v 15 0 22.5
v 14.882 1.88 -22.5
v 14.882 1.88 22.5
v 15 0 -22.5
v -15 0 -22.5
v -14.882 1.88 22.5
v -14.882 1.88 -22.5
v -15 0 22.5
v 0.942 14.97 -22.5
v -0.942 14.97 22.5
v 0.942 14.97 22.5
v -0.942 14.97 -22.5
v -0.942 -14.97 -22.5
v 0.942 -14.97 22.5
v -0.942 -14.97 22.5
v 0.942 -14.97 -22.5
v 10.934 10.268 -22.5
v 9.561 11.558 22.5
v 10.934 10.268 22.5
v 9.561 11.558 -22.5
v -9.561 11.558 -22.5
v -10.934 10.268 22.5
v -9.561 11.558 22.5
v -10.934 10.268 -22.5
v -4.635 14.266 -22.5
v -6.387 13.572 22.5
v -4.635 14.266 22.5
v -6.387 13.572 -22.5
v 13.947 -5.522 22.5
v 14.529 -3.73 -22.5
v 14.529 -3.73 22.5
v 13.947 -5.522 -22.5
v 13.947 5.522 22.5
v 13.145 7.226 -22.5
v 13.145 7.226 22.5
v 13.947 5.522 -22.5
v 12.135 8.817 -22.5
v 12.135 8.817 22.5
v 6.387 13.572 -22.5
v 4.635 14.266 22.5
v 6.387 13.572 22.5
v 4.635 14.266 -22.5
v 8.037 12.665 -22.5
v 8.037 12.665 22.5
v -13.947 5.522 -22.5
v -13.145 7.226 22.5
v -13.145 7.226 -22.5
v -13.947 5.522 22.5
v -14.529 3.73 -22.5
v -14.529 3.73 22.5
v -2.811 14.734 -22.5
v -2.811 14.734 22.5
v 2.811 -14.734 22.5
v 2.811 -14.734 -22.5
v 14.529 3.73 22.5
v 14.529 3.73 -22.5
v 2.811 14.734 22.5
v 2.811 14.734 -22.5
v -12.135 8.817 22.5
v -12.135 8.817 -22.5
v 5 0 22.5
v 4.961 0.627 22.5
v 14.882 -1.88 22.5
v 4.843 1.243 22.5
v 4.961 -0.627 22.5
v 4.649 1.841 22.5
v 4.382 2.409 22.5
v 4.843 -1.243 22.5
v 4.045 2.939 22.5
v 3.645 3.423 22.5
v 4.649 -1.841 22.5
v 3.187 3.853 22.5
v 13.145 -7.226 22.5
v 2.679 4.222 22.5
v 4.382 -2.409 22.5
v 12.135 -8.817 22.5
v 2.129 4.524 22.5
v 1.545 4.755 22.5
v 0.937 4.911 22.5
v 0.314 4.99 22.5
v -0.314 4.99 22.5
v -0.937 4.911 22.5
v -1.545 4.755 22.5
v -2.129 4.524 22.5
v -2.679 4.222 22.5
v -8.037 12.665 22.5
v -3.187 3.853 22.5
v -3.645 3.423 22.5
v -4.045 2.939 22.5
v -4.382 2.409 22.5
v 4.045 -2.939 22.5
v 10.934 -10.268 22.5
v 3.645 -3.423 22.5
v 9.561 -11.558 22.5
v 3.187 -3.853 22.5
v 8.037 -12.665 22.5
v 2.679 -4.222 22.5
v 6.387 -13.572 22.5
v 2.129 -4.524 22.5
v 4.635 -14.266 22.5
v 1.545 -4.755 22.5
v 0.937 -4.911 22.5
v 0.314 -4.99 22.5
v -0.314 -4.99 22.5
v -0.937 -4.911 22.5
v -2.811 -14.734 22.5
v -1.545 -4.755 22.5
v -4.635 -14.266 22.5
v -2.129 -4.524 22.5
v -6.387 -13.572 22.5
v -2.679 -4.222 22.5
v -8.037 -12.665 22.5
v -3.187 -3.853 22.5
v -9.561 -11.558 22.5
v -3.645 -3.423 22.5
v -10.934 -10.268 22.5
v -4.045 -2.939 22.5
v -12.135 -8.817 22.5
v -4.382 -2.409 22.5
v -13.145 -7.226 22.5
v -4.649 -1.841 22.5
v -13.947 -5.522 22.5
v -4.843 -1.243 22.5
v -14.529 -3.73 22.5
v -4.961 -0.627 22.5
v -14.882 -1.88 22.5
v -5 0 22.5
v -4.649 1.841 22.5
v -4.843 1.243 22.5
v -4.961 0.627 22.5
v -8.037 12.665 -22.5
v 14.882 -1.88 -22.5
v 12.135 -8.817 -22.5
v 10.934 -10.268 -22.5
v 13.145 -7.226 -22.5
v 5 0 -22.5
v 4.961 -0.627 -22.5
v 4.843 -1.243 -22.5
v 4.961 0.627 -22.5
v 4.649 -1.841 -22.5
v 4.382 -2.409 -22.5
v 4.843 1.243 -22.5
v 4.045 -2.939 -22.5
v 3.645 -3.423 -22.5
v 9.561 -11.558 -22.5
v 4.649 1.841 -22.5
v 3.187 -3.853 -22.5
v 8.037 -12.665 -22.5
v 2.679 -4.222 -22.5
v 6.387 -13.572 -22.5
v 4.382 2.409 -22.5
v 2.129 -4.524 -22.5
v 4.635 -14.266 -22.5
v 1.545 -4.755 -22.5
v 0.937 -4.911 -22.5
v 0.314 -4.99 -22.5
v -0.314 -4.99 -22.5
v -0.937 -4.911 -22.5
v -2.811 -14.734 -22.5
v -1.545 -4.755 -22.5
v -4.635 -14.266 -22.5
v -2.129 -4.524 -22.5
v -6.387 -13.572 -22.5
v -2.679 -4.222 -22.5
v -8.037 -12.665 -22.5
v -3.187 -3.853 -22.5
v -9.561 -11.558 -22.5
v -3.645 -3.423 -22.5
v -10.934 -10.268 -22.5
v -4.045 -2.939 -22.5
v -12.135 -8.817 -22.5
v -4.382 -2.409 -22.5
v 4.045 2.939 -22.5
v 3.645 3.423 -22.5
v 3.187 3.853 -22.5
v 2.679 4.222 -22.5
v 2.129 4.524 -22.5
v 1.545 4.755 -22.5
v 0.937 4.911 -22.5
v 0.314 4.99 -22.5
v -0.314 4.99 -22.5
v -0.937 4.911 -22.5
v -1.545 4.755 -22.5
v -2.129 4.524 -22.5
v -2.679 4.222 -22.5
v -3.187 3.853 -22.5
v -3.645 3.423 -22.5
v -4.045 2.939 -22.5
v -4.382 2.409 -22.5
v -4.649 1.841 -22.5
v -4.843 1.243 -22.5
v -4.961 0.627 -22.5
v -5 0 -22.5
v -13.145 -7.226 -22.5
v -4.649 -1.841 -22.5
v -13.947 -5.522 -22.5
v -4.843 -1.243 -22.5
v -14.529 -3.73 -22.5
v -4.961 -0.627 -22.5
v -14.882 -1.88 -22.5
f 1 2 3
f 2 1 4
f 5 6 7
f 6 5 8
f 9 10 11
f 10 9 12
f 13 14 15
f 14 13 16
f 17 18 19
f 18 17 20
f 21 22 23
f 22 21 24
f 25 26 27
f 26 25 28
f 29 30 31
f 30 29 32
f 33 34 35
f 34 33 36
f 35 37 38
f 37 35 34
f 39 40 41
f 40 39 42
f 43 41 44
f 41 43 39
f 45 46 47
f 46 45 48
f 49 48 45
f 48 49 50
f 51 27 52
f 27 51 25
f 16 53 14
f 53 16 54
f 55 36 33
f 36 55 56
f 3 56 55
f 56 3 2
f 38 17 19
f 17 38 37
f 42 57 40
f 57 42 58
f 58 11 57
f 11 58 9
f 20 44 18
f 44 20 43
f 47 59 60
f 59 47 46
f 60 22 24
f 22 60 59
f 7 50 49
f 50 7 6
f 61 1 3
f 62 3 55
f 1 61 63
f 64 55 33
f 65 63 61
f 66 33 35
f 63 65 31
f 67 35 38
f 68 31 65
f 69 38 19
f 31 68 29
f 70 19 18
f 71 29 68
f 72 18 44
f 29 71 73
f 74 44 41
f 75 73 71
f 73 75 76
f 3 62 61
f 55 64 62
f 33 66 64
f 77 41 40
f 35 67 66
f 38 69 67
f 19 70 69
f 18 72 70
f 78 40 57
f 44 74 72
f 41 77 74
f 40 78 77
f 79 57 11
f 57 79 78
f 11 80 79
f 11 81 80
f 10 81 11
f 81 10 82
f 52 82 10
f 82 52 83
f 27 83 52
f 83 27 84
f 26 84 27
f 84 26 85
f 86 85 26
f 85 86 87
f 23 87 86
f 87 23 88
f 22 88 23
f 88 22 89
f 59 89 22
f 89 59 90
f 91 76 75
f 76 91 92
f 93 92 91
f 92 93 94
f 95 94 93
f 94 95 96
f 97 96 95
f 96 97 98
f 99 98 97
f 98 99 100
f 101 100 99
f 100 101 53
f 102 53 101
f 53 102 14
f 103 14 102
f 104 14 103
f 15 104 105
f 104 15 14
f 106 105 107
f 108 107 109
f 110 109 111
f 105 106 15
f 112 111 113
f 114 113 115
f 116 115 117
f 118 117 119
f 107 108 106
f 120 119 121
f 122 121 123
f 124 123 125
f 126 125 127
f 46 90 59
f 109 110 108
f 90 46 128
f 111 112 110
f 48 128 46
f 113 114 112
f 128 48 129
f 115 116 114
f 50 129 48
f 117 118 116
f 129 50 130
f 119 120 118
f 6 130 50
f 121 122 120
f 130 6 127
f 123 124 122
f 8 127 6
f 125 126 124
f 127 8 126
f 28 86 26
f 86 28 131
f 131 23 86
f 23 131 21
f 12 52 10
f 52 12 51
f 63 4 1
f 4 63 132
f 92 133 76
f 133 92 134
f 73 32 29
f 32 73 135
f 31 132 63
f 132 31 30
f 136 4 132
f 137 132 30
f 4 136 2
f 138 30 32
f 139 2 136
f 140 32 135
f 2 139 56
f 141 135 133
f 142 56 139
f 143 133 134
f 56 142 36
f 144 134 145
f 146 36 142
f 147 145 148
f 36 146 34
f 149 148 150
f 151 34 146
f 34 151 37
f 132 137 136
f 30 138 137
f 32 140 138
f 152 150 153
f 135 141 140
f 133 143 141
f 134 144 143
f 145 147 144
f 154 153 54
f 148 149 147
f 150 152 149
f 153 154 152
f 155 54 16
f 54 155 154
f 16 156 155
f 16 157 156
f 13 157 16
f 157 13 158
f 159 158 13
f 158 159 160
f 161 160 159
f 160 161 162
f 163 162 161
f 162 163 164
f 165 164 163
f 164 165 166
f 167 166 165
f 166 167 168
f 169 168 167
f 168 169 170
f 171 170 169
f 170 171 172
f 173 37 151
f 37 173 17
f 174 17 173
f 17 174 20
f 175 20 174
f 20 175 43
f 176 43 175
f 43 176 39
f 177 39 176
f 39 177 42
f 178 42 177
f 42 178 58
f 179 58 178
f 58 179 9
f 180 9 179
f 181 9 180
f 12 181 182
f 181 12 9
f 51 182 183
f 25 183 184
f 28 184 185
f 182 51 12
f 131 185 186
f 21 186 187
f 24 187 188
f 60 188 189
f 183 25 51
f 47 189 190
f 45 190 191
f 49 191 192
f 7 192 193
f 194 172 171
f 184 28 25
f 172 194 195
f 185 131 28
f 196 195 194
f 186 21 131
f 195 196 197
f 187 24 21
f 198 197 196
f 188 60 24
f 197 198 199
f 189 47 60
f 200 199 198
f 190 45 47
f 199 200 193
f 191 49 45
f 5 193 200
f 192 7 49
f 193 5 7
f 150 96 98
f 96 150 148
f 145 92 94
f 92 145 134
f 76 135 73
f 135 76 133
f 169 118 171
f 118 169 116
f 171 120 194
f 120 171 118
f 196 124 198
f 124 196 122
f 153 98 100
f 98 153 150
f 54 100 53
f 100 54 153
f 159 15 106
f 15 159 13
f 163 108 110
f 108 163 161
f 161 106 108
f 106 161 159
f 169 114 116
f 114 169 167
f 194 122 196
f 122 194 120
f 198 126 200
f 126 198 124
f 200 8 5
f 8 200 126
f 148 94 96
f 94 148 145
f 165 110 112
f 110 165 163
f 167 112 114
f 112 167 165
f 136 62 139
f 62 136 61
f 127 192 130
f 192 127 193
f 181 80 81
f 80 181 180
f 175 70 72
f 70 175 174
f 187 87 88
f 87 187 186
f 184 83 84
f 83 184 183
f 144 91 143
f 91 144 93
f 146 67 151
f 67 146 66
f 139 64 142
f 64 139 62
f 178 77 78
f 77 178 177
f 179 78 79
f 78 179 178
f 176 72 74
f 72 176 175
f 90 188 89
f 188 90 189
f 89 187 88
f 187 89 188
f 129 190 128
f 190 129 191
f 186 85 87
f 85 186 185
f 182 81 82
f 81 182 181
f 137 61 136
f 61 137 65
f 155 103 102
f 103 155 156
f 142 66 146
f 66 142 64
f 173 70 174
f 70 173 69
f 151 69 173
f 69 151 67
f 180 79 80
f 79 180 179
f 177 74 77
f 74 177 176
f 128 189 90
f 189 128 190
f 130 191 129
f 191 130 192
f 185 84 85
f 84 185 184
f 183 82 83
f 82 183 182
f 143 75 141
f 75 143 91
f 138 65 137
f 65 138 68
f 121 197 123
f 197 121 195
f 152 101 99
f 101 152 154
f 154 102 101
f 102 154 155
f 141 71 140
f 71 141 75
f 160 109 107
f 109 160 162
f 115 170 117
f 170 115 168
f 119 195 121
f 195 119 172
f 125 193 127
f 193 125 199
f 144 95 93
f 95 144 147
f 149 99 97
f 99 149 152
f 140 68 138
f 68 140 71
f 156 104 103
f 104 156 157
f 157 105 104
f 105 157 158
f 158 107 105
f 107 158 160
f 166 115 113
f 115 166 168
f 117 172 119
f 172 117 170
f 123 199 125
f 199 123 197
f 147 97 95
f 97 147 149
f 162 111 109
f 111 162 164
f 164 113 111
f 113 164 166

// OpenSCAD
$fn = 50;


difference() {
	union() {
		translate(v = [0, 0, -22.5000000000]) {
			cylinder(h = 45, r = 15.0000000000);
		}
	}
	union() {
		translate(v = [0, 0, -100.0000000000]) {
			cylinder(h = 200, r = 5.0000000000);
		}
	}
}
